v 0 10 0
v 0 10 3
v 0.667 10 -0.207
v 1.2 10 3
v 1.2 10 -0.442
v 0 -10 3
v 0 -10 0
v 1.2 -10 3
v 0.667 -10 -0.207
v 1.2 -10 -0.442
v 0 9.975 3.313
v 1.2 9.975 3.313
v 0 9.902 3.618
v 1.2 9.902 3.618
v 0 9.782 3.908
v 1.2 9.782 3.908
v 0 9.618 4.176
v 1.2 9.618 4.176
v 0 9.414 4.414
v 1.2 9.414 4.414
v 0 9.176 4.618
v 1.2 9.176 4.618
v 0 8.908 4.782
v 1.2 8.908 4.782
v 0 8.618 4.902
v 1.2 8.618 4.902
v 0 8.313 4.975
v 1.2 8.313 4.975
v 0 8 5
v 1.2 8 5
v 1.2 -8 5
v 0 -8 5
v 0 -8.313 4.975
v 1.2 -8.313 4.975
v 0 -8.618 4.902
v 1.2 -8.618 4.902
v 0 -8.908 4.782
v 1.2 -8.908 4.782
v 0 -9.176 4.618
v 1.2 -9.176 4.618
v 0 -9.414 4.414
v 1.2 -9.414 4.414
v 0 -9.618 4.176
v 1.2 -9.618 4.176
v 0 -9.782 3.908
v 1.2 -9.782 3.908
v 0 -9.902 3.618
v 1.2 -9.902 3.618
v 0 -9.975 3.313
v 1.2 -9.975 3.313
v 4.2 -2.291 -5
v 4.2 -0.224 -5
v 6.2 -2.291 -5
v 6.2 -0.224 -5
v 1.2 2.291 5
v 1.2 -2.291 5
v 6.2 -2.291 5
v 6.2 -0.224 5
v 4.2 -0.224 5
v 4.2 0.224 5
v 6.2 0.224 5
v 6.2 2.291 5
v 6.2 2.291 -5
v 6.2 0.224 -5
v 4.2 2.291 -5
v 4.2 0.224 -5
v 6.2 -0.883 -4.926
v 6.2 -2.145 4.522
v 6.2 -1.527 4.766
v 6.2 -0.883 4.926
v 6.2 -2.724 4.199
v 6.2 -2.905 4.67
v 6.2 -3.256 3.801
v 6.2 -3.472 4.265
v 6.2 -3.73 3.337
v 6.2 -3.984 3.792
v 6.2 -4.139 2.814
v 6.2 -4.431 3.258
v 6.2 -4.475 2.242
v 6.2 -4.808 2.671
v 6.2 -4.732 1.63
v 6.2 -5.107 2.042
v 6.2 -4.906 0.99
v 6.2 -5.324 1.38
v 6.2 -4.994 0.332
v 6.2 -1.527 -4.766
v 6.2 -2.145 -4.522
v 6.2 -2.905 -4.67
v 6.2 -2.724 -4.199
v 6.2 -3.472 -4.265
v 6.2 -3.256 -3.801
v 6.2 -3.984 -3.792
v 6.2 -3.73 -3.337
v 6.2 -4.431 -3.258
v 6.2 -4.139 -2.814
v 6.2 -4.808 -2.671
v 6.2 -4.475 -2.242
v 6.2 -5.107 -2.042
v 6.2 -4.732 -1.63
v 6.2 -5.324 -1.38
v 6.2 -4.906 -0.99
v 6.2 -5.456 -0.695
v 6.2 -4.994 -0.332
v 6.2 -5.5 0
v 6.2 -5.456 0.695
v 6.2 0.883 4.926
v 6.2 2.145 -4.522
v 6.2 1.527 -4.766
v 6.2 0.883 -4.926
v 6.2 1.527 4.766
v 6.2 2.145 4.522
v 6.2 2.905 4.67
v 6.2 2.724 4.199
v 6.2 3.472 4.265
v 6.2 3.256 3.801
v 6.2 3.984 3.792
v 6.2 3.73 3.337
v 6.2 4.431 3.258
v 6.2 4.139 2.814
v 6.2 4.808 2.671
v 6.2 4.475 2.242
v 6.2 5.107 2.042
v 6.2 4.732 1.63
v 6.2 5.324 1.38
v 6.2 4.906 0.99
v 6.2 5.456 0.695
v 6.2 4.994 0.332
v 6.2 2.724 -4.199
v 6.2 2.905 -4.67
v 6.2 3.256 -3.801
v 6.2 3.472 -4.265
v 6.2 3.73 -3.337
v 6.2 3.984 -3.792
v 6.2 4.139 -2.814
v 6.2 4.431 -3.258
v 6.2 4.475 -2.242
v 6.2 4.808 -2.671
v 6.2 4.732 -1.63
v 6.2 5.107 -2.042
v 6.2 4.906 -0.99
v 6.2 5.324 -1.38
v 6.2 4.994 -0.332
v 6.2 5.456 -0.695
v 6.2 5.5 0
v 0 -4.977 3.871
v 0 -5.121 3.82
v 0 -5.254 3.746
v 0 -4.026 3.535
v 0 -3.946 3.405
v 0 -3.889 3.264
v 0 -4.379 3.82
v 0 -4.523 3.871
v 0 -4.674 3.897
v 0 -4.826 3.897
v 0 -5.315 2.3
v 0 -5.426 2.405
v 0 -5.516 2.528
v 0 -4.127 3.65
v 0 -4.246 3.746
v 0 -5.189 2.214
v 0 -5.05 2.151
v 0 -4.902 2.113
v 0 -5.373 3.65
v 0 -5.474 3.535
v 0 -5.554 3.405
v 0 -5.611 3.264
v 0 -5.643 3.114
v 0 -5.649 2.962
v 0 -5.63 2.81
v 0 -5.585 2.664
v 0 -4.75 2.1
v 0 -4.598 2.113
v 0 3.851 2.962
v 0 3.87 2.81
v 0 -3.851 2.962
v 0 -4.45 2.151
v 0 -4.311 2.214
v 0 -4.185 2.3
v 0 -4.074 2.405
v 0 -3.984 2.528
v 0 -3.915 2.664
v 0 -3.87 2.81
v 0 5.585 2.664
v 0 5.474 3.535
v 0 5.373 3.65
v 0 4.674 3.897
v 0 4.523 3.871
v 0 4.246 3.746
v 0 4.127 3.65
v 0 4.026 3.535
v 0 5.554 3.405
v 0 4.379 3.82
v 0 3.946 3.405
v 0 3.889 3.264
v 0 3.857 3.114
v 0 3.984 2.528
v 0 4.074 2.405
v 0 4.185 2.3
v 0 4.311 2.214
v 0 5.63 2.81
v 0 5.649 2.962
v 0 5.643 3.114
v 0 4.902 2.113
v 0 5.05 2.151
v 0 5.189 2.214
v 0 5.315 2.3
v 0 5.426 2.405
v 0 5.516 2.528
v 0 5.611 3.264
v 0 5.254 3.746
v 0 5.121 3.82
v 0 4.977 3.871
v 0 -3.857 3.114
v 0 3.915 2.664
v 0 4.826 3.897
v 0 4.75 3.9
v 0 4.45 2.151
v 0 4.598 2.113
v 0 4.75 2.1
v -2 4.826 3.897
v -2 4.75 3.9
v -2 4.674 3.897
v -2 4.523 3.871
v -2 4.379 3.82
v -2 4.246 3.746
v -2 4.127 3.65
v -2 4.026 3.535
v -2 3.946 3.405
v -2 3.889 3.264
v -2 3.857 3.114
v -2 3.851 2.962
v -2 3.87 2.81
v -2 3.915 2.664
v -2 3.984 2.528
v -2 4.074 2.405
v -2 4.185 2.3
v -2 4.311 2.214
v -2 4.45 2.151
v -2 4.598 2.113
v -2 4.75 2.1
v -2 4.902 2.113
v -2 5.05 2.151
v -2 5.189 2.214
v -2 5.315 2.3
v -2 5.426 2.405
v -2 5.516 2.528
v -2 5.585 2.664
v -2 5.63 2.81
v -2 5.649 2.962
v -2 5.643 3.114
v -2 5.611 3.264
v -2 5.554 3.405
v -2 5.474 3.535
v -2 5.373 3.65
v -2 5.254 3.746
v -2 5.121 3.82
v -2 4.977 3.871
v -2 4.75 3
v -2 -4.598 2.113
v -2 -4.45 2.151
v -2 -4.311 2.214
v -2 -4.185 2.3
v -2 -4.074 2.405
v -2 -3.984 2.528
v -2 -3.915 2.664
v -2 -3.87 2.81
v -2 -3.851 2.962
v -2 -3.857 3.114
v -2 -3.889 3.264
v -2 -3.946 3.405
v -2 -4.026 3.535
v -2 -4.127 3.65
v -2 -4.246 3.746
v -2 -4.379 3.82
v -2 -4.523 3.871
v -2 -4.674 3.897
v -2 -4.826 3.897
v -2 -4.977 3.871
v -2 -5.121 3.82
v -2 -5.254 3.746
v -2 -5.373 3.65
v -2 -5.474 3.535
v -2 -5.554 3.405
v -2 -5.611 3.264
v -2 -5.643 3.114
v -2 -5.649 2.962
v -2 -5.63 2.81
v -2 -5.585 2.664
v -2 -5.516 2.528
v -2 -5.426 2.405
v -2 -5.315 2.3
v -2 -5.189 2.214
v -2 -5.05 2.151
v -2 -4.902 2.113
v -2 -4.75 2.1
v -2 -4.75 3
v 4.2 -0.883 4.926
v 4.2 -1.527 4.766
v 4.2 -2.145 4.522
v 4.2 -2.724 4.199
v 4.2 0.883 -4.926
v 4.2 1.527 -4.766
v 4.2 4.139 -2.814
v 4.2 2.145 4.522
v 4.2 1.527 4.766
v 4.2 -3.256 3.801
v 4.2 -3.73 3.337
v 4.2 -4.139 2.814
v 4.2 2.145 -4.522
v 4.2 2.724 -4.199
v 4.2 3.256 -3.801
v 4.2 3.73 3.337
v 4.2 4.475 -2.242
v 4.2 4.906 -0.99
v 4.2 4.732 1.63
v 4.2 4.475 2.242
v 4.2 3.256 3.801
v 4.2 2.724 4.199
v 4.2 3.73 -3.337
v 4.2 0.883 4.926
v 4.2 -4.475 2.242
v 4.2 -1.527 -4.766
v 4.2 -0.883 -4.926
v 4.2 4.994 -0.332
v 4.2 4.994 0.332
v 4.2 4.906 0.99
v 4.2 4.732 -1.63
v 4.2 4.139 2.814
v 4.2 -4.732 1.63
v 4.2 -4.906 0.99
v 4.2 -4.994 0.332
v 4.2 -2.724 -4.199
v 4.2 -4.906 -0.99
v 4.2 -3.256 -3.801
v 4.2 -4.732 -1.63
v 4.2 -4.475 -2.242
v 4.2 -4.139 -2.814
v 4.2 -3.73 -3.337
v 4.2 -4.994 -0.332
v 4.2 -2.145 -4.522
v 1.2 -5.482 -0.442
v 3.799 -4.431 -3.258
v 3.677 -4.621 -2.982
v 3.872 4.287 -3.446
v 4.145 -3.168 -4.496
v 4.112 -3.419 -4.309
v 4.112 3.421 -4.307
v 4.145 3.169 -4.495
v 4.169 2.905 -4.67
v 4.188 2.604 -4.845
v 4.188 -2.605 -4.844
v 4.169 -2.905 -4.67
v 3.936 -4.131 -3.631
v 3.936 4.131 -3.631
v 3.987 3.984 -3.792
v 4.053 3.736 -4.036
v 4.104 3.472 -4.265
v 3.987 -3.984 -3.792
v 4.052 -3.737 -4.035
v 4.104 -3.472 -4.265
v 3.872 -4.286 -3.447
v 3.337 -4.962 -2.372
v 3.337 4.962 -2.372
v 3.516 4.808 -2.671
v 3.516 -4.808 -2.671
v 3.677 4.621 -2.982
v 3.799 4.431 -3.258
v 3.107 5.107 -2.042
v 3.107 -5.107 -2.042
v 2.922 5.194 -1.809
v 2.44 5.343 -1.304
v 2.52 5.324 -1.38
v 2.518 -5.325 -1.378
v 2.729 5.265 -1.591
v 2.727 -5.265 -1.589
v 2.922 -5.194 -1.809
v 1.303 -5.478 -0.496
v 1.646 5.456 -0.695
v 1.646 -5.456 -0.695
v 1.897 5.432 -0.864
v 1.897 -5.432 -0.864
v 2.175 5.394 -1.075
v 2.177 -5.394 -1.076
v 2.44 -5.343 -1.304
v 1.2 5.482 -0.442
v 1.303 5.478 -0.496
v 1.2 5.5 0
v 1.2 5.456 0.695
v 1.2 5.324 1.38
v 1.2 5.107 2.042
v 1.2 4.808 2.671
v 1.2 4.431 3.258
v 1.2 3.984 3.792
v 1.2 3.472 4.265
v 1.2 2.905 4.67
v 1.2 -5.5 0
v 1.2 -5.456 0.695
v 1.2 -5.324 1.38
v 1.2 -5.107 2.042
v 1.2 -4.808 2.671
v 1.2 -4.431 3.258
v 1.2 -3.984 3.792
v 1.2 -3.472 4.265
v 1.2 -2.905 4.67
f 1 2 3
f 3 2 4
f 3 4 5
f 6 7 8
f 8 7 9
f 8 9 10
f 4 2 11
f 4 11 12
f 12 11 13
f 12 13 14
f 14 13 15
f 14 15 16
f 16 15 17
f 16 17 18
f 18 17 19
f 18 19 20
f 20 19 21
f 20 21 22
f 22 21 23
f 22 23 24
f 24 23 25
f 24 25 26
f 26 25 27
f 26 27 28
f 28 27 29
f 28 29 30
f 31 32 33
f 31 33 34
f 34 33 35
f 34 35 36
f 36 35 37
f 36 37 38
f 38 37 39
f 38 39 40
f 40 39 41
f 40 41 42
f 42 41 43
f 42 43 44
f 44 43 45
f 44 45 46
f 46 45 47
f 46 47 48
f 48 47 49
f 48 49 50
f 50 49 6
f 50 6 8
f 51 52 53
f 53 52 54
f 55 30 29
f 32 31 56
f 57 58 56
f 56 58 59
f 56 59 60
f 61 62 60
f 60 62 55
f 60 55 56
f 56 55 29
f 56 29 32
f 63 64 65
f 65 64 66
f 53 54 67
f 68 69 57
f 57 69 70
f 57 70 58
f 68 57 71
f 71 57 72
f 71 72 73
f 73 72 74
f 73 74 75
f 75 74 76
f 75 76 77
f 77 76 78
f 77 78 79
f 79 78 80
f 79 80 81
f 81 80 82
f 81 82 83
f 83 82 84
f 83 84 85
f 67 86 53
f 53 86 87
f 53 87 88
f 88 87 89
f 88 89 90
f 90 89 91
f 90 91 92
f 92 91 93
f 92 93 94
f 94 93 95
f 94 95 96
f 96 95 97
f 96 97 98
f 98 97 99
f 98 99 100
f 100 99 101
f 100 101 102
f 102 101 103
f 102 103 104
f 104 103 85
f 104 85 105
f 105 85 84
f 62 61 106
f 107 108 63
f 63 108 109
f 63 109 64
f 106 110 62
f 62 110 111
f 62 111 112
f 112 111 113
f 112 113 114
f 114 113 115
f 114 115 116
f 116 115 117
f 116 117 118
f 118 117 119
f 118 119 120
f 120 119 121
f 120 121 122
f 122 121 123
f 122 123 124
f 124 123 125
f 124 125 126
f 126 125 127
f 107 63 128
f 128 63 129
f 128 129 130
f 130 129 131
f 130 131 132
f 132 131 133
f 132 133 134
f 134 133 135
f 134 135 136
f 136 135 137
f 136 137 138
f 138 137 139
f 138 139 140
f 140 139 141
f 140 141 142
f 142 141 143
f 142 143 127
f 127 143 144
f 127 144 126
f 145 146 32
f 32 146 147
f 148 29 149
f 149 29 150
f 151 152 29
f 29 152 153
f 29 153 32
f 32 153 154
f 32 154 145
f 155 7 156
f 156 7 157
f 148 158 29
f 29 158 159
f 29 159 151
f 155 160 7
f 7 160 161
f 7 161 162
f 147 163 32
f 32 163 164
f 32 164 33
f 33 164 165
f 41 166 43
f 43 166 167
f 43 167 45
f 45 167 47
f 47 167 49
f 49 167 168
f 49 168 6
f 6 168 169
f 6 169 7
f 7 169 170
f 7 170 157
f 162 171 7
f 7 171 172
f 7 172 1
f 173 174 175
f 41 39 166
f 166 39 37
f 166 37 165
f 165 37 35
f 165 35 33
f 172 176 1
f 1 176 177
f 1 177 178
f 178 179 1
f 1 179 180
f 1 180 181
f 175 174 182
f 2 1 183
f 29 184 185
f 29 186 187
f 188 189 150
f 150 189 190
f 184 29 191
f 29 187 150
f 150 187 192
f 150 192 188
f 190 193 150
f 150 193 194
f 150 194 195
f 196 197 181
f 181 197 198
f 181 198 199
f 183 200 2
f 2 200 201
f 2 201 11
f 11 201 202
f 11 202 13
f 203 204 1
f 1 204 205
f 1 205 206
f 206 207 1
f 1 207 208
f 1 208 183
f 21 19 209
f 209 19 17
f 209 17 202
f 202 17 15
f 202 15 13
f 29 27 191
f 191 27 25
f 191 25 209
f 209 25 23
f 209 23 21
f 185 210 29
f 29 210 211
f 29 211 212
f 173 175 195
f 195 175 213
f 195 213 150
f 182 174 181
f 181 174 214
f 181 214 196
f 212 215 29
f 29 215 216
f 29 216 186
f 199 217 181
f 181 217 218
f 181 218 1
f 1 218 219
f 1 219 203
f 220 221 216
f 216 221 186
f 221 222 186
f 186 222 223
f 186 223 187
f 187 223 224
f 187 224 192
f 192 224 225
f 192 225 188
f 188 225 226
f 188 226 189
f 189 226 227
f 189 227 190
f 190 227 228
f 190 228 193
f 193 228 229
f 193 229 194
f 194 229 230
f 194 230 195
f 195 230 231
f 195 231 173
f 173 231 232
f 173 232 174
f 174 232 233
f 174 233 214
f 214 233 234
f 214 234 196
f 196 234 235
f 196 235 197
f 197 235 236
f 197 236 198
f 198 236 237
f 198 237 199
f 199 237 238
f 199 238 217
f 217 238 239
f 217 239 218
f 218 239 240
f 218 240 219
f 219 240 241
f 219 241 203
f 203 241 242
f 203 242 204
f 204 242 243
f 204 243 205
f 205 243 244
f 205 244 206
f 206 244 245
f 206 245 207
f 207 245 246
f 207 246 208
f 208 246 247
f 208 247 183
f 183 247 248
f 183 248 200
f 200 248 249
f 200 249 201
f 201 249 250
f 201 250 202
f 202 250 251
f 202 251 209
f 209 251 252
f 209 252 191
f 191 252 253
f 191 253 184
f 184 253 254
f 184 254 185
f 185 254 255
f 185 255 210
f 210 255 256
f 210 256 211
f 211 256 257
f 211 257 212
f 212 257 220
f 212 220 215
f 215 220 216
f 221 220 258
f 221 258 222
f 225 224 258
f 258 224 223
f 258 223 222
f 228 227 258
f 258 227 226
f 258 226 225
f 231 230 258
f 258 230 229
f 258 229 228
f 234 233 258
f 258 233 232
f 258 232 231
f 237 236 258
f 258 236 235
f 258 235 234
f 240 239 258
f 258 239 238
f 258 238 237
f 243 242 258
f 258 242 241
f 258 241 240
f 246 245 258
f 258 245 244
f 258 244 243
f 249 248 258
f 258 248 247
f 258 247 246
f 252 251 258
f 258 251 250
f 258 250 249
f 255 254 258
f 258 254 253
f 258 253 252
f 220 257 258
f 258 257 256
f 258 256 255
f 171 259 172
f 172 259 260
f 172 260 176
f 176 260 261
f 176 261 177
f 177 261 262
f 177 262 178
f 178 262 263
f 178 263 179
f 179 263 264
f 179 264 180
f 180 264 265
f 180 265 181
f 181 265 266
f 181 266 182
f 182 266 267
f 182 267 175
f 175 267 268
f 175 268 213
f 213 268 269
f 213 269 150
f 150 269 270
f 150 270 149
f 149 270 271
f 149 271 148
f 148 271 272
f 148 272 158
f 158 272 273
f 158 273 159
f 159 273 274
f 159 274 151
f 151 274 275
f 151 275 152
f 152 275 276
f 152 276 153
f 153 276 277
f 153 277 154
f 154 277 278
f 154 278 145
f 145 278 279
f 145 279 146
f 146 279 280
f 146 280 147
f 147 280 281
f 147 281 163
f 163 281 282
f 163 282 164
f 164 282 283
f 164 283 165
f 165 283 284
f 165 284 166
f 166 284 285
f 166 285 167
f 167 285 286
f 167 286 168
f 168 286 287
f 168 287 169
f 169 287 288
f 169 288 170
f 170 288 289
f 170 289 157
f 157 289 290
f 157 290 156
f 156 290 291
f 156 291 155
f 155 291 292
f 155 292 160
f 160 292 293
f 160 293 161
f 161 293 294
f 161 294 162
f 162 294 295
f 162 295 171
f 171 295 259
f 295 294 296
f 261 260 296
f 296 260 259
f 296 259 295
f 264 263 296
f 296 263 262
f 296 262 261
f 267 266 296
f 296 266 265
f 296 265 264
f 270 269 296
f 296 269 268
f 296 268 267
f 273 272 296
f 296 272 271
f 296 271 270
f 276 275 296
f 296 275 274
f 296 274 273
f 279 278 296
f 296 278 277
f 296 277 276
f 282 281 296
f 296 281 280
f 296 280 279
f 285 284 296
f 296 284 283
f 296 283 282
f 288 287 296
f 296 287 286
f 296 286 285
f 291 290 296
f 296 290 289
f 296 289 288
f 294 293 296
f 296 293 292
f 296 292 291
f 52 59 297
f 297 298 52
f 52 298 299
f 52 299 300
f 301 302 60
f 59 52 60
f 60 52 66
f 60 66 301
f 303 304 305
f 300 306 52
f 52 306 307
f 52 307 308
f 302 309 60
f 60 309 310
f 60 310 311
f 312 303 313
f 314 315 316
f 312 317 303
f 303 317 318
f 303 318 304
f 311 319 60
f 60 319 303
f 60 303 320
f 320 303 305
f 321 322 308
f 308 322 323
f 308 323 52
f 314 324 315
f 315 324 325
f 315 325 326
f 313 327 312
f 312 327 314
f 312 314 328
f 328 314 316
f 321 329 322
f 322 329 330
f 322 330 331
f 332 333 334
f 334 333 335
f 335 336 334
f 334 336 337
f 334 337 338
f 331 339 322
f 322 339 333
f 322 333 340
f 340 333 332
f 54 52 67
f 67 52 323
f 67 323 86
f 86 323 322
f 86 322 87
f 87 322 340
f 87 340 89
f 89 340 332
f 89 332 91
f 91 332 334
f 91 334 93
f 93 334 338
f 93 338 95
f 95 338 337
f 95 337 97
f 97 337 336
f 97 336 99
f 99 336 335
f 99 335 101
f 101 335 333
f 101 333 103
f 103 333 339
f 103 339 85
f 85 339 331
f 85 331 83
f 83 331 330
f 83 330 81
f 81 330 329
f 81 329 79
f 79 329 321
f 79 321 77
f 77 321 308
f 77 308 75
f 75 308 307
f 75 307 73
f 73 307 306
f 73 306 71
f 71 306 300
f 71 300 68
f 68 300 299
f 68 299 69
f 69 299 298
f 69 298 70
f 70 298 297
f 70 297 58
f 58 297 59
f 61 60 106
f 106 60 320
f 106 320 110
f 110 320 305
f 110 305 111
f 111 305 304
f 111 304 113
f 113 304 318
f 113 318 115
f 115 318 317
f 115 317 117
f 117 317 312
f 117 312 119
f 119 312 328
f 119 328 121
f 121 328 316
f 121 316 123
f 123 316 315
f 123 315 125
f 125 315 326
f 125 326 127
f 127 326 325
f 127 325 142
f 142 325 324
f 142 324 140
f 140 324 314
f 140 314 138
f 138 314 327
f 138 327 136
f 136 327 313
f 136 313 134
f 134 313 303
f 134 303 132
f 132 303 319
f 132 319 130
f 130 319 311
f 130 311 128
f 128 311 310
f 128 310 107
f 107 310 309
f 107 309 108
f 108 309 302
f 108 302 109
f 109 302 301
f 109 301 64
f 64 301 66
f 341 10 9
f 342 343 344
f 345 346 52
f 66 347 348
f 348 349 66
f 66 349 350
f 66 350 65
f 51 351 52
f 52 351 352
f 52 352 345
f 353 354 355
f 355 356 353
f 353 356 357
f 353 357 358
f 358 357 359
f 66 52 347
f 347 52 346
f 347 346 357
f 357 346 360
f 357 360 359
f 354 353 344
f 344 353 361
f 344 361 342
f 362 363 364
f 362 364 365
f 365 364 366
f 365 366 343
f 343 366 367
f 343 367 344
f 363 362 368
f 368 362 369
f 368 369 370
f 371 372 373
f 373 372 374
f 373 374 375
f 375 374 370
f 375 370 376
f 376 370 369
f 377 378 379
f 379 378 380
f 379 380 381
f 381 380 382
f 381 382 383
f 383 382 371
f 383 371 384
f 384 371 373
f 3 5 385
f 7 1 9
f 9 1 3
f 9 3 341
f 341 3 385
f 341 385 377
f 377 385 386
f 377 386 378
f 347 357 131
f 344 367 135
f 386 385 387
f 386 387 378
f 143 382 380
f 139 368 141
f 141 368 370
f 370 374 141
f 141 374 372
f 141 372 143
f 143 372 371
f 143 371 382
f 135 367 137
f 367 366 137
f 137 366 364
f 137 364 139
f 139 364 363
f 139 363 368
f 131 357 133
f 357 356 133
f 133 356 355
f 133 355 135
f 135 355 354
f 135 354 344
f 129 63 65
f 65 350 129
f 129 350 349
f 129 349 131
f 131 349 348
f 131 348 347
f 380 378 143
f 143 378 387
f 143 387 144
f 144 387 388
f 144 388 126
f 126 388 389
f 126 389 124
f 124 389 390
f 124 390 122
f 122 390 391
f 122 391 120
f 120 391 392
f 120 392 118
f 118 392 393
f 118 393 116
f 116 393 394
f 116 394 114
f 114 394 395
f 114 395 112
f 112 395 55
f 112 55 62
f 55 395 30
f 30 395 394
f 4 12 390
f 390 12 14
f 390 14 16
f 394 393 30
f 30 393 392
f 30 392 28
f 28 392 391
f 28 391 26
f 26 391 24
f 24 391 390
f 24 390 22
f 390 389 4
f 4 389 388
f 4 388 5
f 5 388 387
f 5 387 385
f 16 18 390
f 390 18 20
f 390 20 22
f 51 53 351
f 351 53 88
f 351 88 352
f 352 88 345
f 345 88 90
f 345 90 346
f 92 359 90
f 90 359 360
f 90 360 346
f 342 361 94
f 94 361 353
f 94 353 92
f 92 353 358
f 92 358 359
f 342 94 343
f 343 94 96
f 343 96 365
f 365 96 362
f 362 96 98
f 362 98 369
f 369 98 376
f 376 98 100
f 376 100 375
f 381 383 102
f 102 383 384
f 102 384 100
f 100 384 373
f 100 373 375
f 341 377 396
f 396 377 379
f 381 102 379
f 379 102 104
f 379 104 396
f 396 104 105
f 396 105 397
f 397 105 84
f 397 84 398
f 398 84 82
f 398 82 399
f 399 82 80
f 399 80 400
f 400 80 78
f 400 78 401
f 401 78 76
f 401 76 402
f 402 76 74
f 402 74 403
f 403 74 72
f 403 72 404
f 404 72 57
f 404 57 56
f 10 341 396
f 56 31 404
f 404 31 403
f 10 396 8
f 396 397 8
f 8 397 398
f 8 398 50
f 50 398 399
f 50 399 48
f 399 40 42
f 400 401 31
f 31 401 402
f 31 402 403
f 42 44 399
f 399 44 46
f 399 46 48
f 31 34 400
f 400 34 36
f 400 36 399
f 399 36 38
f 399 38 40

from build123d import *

# Parameters (mm, degrees)
SKETCH1_W               = 20
SKETCH1_H               = 10
BOSS_EXTRUDE1_DEPTH     = 6.2
SKETCH2_R               = 0.9
BOSS_EXTRUDE2_DEPTH     = 2
FILLET1_R               = 2
CUT_EXTRUDE1_DEPTH      = 14.86506401
CUT_EXTRUDE1_DEPTH_BACK = 2
SKETCH3_R               = 5.005
CUT_EXTRUDE2_DEPTH      = 13.784365452
CUT_EXTRUDE2_DEPTH_BACK = 13.784365452
CUT_EXTRUDE3_DEPTH      = 5


with BuildPart() as part:
    # Sketch1 → Boss-Extrude1 (new body)
    with BuildSketch(Plane.YZ):
        Rectangle(SKETCH1_W, SKETCH1_H)
    extrude(amount=BOSS_EXTRUDE1_DEPTH)

    # Sketch2 → Boss-Extrude2 (add)
    with BuildSketch(Plane.YZ):
        with Locations(Location((-4.75, 3, 0), (0, 0, 270))):
            Circle(SKETCH2_R)
        with Locations(Location((4.75, 3, 0), (0, 0, 90))):
            Circle(SKETCH2_R)
    extrude(amount=-BOSS_EXTRUDE2_DEPTH)

    # Fillet1
    fillet1_edges = [part.edges().sort_by_distance(p)[0] for p in [
        (3.1, -10, 5),
        (3.1, 10, 5),
    ]]
    fillet(fillet1_edges, radius=FILLET1_R)

    # Sketch3 → Cut-Extrude1 (cut, two sides: drawn at the far end of the back side and taken through both)
    with BuildSketch(Plane.YZ.offset(6.2).offset(-CUT_EXTRUDE1_DEPTH_BACK)):
        Circle(SKETCH3_R)
    extrude(amount=CUT_EXTRUDE1_DEPTH + CUT_EXTRUDE1_DEPTH_BACK, mode=Mode.SUBTRACT)

    # Sketch4 → Cut-Extrude2 (cut, two sides: drawn at the far end of the back side and taken through both)
    with BuildSketch(Plane(origin=(0, 0, 0), x_dir=(-1, 0, 0), z_dir=(0, 1, 0)).offset(-CUT_EXTRUDE2_DEPTH_BACK)):
        with BuildLine():
            Line((-4.2, -5), (0, -5))
            Line((0, -5), (0, 0))
            ThreePointArc((0, 0), (-2.922321699, -1.809249773), (-4.2, -5))
        make_face()
    extrude(amount=CUT_EXTRUDE2_DEPTH + CUT_EXTRUDE2_DEPTH_BACK, mode=Mode.SUBTRACT)

    # Sketch5 → Cut-Extrude3 (cut)
    with BuildSketch(Plane.YZ.offset(6.2)):
        with BuildLine():
            Line((-10, 5), (-2.291287847, 5))
            ThreePointArc((-2.291287847, 5), (-5.5, 0), (-2.291287847, -5))
            Line((-2.291287847, -5), (-10, -5))
            Line((-10, -5), (-10, 5))
        make_face()
        with BuildLine():
            Line((10, 5), (10, -5))
            Line((10, -5), (2.291287847, -5))
            ThreePointArc((2.291287847, -5), (5.5, 0), (2.291287847, 5))
            Line((2.291287847, 5), (10, 5))
        make_face()
    extrude(amount=-CUT_EXTRUDE3_DEPTH, mode=Mode.SUBTRACT)


solid = part.part
